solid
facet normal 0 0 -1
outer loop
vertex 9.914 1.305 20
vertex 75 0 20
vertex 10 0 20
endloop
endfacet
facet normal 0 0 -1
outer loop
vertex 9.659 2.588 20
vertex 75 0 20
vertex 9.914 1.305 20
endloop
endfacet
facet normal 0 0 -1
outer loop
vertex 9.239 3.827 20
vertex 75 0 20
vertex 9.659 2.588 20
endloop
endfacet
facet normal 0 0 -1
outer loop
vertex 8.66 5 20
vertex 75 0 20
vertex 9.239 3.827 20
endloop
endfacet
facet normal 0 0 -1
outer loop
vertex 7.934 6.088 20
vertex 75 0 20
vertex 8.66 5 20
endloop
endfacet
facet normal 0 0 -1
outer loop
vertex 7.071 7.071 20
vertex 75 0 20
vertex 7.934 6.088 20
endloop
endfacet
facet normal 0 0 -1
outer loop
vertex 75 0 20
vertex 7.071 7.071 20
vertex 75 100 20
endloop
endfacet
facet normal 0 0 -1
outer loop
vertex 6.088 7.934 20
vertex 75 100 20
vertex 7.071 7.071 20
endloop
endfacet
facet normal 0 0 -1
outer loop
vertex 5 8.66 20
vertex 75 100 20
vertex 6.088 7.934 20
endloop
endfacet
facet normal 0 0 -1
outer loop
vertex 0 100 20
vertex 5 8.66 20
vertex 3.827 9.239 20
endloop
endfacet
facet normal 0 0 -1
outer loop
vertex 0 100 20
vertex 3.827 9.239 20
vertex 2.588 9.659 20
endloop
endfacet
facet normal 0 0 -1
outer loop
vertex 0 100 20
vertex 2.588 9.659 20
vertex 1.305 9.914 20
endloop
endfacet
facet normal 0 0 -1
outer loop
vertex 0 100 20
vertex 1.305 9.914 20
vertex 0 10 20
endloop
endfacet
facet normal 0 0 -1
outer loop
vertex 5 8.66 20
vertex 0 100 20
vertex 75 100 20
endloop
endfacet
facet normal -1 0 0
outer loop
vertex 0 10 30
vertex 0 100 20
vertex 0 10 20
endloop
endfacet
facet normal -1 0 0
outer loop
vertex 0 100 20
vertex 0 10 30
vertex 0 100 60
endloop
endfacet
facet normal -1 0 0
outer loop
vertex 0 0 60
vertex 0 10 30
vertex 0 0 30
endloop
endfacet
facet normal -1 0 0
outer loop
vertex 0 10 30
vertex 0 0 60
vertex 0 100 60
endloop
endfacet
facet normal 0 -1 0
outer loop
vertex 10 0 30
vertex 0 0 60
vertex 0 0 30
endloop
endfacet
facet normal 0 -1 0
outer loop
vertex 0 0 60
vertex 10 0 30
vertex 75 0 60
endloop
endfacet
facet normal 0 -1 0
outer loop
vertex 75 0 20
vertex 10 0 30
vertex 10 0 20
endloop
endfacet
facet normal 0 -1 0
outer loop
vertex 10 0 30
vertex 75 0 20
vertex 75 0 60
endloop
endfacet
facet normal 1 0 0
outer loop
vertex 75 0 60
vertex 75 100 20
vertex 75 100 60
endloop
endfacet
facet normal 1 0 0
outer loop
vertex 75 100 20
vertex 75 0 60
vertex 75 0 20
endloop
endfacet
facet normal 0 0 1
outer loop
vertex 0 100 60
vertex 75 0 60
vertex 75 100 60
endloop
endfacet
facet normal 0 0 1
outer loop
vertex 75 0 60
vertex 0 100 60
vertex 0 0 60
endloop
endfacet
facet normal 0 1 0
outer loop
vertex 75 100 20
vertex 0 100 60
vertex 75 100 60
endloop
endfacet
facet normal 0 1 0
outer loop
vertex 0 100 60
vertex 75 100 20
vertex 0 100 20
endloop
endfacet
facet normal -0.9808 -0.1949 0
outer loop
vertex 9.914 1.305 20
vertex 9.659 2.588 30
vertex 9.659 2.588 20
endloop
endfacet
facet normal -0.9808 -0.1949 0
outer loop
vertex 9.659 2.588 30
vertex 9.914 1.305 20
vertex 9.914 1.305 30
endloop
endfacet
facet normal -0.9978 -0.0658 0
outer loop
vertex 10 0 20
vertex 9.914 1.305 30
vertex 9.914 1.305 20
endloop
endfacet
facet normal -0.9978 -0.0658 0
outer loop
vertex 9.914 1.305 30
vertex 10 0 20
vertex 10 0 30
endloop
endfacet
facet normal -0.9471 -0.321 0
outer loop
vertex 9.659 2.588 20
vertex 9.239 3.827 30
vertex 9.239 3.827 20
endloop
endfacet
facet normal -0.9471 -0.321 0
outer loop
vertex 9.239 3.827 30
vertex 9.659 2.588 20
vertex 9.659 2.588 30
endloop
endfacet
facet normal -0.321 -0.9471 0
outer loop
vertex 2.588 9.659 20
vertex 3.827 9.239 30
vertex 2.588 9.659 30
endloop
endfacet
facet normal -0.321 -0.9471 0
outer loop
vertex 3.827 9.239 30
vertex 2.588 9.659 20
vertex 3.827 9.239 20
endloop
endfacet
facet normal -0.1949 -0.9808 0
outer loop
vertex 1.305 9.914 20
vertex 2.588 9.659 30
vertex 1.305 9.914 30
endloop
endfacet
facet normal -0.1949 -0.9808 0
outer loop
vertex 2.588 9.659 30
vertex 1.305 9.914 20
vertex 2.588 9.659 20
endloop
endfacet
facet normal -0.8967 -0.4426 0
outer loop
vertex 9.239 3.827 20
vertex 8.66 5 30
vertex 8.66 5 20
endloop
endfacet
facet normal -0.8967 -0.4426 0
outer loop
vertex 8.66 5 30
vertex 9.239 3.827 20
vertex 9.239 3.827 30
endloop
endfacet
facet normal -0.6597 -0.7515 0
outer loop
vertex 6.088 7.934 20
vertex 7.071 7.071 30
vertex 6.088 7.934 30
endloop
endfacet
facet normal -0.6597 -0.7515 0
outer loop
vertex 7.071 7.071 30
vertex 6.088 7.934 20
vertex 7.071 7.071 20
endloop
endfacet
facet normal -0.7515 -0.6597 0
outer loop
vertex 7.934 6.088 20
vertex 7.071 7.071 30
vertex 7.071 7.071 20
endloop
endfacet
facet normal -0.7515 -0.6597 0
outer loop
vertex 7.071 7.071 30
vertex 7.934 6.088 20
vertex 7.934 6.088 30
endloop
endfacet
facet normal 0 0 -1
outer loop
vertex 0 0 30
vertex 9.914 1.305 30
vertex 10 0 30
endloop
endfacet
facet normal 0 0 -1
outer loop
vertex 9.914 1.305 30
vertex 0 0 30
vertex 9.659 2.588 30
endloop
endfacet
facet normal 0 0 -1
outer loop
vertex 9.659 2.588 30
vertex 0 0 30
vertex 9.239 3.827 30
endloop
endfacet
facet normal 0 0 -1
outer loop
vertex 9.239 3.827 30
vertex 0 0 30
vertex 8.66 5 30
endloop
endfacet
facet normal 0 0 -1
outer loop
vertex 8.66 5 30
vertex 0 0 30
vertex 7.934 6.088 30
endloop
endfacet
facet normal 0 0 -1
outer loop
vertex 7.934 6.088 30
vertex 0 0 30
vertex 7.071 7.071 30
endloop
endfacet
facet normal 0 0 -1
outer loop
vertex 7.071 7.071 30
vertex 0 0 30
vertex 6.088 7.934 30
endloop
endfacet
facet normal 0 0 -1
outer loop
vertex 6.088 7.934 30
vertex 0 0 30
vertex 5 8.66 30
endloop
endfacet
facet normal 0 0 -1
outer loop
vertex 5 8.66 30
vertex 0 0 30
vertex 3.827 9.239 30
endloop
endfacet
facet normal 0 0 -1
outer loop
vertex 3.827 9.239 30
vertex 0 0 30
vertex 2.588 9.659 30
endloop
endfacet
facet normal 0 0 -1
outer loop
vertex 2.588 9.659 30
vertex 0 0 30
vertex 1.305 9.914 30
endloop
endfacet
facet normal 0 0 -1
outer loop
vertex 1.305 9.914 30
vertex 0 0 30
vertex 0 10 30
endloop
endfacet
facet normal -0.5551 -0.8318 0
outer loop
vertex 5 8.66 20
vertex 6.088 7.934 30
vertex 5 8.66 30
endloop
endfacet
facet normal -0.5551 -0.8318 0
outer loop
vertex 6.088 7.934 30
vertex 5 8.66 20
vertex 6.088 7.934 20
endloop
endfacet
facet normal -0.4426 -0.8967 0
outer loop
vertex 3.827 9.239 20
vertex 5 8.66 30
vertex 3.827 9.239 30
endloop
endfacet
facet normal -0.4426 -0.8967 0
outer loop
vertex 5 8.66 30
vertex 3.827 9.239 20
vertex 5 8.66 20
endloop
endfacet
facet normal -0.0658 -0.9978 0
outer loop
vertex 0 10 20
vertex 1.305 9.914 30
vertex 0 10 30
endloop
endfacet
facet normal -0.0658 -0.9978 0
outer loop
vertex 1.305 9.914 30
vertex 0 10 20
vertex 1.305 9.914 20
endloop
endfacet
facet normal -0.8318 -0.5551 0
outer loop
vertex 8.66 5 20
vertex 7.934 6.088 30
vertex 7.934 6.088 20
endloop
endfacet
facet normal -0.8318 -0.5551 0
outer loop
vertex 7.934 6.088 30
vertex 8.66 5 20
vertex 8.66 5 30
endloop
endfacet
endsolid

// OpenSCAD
// Shadow Maker Parameters
shadow_width = 50;
shadow_height = 75;
shadow_depth = 20;
wall_thickness = 3;
lamp_height = 60;
lamp_diameter = 25;
lamp_base_diameter = 20;
lamp_base_height = 10;

// Function to create a shadow piece
module shadow_piece(x, y, z) {
  translate([x, y, z]) {
    cube([shadow_width, shadow_height, shadow_depth]);
  }
}

// Main Body
difference() {
  cube([lamp_diameter + shadow_width, lamp_diameter + shadow_height, lamp_height]);

  // Subtract shadow pieces
  for (i = [0:5]) {
    for (j = [0:5]) {
      shadow_piece(i * shadow_width, j * shadow_height, 0);
    }
  }

  // Subtract base
  translate([0,0,-lamp_height/2]) {
    cylinder(h = lamp_height, r = lamp_base_diameter/2, $fn = 48);
  }

  // Subtract base (optional)
  translate([0,0,-lamp_height/2]) {
    cylinder(h = lamp_height, r = lamp_base_diameter/2, $fn = 48);
  }
}
